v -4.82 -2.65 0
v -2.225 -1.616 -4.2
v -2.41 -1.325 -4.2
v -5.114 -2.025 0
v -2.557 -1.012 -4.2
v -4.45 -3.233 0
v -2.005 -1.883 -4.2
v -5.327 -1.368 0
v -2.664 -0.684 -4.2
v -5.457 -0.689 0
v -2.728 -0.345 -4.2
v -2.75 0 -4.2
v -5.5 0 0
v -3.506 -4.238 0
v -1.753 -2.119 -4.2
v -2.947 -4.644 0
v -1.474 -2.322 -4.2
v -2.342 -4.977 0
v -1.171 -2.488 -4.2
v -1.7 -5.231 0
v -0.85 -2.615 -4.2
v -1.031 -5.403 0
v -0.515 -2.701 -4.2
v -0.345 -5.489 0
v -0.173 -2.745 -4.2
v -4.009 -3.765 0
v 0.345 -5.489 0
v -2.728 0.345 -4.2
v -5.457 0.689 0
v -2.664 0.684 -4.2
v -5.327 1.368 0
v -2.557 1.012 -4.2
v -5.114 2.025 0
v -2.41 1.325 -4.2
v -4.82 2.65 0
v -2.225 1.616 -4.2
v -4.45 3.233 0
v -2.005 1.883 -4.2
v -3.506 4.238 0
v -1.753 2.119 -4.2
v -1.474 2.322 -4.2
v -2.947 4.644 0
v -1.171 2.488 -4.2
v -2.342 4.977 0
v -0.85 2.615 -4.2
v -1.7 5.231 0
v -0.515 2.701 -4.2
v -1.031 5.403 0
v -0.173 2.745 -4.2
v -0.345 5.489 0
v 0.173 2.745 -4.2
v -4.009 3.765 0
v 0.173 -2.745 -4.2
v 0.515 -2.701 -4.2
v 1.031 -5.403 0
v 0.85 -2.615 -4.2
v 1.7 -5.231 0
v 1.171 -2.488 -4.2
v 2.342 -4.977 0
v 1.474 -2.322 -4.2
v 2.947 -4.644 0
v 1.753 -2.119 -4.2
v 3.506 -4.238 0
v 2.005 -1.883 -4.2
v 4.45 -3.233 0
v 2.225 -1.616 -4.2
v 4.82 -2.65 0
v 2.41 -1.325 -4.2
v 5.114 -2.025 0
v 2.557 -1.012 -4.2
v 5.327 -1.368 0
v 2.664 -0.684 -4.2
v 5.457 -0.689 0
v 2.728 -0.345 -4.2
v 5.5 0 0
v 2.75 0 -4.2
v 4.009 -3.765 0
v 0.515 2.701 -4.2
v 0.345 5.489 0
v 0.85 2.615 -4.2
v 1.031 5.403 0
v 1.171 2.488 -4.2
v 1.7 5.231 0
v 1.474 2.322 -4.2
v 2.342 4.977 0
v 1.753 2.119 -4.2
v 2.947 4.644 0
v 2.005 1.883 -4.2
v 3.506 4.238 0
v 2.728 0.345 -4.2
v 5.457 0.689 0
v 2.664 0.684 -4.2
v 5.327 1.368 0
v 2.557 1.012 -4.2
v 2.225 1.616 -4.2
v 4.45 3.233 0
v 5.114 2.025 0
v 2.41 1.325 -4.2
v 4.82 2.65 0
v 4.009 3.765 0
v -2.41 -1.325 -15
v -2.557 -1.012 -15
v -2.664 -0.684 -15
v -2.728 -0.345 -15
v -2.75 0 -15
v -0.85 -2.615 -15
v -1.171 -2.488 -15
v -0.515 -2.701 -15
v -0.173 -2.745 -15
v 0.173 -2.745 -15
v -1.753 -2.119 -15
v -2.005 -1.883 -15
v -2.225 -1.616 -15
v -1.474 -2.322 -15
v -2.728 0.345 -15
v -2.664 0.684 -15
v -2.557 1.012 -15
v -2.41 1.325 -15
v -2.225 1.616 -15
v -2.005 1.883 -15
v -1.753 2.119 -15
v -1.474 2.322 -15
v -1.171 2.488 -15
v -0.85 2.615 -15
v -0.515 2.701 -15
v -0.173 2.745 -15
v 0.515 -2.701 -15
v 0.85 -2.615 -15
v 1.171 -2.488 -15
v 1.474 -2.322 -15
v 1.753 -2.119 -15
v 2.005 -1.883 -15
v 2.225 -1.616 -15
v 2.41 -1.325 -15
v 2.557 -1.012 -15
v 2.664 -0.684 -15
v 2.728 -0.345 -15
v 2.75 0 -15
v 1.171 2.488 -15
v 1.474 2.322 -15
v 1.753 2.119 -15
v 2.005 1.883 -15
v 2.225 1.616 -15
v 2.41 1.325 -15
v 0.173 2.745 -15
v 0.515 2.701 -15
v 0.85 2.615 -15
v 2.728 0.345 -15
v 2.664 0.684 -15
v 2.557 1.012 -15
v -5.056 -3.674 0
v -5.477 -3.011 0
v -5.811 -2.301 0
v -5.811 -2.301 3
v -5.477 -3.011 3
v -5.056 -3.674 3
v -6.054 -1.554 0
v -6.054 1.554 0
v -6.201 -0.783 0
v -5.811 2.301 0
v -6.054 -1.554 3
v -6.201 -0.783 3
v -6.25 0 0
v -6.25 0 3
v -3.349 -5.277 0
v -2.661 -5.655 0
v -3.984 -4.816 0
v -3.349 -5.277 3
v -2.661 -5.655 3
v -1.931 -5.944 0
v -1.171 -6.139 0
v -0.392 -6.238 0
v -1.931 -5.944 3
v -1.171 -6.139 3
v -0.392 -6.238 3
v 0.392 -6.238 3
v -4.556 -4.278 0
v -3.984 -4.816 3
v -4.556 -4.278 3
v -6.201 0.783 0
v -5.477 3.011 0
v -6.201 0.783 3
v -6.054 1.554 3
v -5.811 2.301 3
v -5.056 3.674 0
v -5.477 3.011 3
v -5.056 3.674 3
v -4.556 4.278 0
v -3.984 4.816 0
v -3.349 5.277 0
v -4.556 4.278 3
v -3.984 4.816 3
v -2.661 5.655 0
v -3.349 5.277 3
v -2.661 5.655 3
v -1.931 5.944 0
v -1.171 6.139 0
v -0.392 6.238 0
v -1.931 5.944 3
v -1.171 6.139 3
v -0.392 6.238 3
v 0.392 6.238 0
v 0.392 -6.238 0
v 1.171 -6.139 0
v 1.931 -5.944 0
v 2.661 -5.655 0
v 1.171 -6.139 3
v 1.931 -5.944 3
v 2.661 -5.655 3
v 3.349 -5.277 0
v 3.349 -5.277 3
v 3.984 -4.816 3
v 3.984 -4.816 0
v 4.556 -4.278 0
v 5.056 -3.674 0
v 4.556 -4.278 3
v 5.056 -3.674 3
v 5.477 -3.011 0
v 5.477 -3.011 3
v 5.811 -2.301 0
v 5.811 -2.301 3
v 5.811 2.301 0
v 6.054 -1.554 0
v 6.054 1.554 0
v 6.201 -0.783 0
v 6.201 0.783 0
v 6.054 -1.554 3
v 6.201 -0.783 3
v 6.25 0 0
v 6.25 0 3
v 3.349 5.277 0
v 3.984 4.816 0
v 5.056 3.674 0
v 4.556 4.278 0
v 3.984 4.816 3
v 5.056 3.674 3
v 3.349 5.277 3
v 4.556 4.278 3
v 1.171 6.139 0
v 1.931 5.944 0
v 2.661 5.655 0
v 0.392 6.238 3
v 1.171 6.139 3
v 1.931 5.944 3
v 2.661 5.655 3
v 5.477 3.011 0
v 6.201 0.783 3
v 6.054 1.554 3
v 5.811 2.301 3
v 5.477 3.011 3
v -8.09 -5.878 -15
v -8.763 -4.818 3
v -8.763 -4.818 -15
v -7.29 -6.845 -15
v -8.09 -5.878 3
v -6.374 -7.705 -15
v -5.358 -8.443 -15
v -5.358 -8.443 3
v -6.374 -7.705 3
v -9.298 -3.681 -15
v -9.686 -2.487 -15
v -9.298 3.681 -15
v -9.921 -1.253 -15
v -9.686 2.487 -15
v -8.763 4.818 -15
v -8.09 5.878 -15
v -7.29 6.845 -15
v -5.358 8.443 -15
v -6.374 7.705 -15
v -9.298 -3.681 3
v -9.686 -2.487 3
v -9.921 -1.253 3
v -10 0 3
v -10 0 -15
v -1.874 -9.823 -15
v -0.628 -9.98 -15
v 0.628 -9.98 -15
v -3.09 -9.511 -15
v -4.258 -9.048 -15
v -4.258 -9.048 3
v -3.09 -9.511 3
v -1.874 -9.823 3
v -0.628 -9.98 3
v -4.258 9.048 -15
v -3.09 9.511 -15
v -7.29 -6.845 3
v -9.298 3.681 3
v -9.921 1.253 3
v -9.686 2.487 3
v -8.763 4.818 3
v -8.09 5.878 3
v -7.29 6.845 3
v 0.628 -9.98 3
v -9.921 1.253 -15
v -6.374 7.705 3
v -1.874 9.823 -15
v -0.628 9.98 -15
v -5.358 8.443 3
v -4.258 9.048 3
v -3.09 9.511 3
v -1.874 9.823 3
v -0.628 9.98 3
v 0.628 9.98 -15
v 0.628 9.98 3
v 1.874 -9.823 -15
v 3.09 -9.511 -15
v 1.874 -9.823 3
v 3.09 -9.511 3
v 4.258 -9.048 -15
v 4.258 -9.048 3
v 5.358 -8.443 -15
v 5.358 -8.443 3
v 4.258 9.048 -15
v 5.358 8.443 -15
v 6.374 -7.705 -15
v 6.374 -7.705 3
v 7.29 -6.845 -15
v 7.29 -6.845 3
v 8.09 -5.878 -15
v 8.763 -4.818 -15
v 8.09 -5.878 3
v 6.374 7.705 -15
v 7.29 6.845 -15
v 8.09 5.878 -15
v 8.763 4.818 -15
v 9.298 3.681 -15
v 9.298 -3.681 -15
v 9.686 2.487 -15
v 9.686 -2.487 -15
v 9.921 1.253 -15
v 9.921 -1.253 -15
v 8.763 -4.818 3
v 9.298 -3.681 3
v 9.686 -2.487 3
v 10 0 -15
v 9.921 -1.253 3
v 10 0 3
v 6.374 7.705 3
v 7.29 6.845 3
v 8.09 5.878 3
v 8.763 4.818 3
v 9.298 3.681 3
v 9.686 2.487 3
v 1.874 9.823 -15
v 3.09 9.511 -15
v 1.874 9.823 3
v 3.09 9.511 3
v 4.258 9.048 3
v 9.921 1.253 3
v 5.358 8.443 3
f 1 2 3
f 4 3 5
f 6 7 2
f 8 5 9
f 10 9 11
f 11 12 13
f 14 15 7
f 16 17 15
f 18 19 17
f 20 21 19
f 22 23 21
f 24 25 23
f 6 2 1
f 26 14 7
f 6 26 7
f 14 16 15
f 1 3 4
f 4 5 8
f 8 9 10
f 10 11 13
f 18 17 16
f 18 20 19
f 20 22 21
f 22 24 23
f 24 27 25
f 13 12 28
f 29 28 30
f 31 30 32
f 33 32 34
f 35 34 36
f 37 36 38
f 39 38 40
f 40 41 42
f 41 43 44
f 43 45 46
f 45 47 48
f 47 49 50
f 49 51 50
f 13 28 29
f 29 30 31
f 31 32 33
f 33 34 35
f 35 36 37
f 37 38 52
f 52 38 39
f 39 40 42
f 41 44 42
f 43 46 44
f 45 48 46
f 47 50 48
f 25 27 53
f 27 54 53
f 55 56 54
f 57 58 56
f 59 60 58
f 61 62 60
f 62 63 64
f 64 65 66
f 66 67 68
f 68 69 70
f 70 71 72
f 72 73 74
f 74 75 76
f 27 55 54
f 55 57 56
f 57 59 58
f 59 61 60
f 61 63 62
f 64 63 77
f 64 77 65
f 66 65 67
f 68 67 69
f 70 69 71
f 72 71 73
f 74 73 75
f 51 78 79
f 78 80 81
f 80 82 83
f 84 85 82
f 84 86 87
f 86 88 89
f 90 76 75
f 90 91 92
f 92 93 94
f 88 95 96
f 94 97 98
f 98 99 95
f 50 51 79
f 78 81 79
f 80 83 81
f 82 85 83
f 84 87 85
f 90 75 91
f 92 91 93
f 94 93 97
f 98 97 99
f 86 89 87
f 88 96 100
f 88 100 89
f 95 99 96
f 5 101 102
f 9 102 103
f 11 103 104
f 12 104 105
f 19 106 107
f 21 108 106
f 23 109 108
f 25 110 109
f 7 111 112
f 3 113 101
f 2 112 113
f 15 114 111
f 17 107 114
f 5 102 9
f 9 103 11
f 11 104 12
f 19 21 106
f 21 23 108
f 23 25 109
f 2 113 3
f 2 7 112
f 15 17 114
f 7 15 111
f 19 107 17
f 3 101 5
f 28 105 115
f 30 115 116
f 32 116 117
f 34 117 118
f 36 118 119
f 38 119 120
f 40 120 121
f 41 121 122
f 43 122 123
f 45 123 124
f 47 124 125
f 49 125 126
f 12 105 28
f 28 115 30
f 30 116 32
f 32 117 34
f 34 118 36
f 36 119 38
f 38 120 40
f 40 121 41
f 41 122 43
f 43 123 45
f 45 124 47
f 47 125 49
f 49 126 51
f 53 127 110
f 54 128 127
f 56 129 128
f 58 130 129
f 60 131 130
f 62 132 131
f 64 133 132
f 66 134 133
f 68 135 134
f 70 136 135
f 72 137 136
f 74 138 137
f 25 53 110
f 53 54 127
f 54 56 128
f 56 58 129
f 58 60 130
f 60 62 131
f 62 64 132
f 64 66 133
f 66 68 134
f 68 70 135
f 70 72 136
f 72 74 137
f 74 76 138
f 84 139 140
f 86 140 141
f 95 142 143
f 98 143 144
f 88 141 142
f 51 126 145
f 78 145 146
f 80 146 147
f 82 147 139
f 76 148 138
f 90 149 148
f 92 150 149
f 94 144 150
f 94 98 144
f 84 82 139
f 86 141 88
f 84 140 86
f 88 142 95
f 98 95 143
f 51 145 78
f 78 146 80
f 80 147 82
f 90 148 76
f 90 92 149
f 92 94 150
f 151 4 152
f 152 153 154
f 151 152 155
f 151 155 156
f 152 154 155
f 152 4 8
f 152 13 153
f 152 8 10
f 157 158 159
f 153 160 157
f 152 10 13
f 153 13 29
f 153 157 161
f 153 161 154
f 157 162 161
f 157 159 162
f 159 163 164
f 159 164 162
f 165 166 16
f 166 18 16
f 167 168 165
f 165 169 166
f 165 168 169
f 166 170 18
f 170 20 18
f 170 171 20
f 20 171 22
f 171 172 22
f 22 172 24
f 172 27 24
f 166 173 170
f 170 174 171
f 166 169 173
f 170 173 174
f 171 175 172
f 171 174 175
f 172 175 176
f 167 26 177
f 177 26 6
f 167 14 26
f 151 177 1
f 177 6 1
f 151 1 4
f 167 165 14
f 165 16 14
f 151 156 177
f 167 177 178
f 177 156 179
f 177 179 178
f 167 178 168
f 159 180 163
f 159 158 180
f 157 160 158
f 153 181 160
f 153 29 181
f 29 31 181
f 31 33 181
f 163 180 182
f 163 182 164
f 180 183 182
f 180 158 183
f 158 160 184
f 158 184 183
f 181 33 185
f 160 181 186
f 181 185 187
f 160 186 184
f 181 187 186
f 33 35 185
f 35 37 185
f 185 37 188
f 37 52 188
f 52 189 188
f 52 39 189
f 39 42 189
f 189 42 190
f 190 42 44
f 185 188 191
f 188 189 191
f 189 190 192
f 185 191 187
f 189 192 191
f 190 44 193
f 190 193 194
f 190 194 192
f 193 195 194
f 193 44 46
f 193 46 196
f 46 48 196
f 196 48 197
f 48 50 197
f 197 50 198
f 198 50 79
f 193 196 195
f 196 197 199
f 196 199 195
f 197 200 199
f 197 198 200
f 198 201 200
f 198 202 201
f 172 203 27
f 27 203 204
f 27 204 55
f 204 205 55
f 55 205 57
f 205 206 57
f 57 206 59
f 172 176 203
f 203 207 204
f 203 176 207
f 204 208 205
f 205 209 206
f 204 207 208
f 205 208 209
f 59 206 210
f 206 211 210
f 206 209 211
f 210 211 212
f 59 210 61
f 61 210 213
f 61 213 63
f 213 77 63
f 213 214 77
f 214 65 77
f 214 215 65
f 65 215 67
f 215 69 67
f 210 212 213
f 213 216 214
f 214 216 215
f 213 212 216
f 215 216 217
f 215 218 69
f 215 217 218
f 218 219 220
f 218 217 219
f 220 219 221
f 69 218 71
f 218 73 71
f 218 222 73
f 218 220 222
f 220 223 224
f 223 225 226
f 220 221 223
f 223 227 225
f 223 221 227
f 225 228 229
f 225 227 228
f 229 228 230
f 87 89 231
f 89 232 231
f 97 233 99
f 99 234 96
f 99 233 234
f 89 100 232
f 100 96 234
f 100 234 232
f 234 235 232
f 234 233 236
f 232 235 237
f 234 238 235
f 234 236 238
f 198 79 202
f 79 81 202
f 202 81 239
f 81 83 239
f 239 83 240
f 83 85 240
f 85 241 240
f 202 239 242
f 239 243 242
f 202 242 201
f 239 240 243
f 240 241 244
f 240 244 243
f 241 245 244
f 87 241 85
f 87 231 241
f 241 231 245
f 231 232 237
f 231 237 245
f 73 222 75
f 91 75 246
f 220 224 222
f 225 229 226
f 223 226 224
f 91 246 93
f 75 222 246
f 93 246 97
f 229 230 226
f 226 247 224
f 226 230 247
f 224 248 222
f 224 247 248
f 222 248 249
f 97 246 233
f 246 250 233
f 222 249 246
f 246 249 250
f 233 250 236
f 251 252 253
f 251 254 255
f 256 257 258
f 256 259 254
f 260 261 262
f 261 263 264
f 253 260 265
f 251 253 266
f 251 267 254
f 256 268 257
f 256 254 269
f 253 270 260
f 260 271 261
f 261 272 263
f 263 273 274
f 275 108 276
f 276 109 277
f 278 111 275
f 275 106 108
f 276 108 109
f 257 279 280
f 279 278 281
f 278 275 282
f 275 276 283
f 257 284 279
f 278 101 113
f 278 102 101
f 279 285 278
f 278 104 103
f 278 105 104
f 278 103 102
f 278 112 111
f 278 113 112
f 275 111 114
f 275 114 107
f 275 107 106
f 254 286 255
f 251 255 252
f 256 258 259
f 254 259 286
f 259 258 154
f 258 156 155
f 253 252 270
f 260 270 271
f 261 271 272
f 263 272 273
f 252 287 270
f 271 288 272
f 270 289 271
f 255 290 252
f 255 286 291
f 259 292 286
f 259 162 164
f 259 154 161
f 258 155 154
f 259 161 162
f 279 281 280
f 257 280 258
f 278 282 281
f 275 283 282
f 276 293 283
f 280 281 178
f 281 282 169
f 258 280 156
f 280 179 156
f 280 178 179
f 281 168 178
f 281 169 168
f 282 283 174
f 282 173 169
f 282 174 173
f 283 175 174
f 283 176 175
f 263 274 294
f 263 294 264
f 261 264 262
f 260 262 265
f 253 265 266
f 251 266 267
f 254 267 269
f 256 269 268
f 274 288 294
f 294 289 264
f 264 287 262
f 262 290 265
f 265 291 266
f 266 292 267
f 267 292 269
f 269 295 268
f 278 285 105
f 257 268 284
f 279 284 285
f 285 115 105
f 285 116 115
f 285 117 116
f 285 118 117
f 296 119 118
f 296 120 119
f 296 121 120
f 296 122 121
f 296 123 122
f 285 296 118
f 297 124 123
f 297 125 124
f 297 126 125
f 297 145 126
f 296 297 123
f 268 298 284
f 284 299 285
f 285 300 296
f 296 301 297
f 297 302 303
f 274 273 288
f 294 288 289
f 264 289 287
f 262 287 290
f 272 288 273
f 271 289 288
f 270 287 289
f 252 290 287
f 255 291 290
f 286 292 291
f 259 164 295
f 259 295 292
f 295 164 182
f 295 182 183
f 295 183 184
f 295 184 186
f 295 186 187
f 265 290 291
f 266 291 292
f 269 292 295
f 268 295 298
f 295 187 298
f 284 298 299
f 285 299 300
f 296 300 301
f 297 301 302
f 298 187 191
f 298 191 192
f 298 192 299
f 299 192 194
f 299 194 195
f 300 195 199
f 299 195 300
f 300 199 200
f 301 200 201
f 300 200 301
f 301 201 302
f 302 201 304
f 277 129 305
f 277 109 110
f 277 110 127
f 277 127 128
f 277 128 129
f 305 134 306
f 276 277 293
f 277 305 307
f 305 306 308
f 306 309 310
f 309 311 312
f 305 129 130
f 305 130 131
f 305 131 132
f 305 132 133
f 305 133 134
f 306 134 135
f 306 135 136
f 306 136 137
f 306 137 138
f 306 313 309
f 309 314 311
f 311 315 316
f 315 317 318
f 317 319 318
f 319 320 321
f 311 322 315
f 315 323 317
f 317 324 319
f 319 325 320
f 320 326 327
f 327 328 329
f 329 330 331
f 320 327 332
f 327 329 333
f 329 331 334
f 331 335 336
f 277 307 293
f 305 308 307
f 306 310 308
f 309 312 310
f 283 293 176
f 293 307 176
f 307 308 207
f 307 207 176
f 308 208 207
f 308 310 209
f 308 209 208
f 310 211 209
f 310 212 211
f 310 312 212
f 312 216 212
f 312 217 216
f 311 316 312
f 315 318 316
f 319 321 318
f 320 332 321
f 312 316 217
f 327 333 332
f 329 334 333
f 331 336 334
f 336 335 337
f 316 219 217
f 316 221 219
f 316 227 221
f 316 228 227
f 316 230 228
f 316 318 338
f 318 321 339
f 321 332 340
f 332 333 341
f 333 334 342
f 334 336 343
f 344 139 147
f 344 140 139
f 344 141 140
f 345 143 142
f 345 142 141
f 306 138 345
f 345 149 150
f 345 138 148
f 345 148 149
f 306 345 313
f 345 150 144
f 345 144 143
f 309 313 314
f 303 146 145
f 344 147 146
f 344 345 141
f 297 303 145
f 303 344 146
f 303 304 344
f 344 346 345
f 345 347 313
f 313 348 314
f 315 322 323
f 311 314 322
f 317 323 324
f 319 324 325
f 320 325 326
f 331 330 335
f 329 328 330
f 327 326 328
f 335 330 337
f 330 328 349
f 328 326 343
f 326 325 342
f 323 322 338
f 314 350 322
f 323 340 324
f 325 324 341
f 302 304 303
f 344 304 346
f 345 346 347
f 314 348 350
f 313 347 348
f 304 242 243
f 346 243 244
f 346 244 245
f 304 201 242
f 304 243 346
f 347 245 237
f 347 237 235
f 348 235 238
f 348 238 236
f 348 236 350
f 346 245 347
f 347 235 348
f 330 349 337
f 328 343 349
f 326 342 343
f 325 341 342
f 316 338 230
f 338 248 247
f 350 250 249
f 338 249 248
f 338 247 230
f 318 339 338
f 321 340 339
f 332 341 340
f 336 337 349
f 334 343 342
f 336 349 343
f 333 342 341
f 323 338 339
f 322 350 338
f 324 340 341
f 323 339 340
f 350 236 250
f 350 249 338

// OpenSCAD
$fn = 50;

difference() {
	union() {
		translate(v = [0, 0, -15.0]) {
			cylinder(h = 18, r = 10.0);
		}
	}
	union() {
		translate(v = [0, 0, 0]) {
			rotate(a = [0, 0, 0]) {
				difference() {
					union() {
						translate(v = [0, 0, -18.0]) {
							cylinder(h = 18, r = 2.25);
						}
						translate(v = [0, 0, -4.2]) {
							cylinder(h = 4.2, r1 = 2.75, r2 = 5.5);
						}
						translate(v = [0, 0, -18.0]) {
							cylinder(h = 18, r = 2.75);
						}
						translate(v = [0, 0, -18.0]) {
							cylinder(h = 18, r = 2.25);
						}
					}
					union();
				}
			}
		}
		#cylinder(h = 3, r = 6.25);
	}
}
